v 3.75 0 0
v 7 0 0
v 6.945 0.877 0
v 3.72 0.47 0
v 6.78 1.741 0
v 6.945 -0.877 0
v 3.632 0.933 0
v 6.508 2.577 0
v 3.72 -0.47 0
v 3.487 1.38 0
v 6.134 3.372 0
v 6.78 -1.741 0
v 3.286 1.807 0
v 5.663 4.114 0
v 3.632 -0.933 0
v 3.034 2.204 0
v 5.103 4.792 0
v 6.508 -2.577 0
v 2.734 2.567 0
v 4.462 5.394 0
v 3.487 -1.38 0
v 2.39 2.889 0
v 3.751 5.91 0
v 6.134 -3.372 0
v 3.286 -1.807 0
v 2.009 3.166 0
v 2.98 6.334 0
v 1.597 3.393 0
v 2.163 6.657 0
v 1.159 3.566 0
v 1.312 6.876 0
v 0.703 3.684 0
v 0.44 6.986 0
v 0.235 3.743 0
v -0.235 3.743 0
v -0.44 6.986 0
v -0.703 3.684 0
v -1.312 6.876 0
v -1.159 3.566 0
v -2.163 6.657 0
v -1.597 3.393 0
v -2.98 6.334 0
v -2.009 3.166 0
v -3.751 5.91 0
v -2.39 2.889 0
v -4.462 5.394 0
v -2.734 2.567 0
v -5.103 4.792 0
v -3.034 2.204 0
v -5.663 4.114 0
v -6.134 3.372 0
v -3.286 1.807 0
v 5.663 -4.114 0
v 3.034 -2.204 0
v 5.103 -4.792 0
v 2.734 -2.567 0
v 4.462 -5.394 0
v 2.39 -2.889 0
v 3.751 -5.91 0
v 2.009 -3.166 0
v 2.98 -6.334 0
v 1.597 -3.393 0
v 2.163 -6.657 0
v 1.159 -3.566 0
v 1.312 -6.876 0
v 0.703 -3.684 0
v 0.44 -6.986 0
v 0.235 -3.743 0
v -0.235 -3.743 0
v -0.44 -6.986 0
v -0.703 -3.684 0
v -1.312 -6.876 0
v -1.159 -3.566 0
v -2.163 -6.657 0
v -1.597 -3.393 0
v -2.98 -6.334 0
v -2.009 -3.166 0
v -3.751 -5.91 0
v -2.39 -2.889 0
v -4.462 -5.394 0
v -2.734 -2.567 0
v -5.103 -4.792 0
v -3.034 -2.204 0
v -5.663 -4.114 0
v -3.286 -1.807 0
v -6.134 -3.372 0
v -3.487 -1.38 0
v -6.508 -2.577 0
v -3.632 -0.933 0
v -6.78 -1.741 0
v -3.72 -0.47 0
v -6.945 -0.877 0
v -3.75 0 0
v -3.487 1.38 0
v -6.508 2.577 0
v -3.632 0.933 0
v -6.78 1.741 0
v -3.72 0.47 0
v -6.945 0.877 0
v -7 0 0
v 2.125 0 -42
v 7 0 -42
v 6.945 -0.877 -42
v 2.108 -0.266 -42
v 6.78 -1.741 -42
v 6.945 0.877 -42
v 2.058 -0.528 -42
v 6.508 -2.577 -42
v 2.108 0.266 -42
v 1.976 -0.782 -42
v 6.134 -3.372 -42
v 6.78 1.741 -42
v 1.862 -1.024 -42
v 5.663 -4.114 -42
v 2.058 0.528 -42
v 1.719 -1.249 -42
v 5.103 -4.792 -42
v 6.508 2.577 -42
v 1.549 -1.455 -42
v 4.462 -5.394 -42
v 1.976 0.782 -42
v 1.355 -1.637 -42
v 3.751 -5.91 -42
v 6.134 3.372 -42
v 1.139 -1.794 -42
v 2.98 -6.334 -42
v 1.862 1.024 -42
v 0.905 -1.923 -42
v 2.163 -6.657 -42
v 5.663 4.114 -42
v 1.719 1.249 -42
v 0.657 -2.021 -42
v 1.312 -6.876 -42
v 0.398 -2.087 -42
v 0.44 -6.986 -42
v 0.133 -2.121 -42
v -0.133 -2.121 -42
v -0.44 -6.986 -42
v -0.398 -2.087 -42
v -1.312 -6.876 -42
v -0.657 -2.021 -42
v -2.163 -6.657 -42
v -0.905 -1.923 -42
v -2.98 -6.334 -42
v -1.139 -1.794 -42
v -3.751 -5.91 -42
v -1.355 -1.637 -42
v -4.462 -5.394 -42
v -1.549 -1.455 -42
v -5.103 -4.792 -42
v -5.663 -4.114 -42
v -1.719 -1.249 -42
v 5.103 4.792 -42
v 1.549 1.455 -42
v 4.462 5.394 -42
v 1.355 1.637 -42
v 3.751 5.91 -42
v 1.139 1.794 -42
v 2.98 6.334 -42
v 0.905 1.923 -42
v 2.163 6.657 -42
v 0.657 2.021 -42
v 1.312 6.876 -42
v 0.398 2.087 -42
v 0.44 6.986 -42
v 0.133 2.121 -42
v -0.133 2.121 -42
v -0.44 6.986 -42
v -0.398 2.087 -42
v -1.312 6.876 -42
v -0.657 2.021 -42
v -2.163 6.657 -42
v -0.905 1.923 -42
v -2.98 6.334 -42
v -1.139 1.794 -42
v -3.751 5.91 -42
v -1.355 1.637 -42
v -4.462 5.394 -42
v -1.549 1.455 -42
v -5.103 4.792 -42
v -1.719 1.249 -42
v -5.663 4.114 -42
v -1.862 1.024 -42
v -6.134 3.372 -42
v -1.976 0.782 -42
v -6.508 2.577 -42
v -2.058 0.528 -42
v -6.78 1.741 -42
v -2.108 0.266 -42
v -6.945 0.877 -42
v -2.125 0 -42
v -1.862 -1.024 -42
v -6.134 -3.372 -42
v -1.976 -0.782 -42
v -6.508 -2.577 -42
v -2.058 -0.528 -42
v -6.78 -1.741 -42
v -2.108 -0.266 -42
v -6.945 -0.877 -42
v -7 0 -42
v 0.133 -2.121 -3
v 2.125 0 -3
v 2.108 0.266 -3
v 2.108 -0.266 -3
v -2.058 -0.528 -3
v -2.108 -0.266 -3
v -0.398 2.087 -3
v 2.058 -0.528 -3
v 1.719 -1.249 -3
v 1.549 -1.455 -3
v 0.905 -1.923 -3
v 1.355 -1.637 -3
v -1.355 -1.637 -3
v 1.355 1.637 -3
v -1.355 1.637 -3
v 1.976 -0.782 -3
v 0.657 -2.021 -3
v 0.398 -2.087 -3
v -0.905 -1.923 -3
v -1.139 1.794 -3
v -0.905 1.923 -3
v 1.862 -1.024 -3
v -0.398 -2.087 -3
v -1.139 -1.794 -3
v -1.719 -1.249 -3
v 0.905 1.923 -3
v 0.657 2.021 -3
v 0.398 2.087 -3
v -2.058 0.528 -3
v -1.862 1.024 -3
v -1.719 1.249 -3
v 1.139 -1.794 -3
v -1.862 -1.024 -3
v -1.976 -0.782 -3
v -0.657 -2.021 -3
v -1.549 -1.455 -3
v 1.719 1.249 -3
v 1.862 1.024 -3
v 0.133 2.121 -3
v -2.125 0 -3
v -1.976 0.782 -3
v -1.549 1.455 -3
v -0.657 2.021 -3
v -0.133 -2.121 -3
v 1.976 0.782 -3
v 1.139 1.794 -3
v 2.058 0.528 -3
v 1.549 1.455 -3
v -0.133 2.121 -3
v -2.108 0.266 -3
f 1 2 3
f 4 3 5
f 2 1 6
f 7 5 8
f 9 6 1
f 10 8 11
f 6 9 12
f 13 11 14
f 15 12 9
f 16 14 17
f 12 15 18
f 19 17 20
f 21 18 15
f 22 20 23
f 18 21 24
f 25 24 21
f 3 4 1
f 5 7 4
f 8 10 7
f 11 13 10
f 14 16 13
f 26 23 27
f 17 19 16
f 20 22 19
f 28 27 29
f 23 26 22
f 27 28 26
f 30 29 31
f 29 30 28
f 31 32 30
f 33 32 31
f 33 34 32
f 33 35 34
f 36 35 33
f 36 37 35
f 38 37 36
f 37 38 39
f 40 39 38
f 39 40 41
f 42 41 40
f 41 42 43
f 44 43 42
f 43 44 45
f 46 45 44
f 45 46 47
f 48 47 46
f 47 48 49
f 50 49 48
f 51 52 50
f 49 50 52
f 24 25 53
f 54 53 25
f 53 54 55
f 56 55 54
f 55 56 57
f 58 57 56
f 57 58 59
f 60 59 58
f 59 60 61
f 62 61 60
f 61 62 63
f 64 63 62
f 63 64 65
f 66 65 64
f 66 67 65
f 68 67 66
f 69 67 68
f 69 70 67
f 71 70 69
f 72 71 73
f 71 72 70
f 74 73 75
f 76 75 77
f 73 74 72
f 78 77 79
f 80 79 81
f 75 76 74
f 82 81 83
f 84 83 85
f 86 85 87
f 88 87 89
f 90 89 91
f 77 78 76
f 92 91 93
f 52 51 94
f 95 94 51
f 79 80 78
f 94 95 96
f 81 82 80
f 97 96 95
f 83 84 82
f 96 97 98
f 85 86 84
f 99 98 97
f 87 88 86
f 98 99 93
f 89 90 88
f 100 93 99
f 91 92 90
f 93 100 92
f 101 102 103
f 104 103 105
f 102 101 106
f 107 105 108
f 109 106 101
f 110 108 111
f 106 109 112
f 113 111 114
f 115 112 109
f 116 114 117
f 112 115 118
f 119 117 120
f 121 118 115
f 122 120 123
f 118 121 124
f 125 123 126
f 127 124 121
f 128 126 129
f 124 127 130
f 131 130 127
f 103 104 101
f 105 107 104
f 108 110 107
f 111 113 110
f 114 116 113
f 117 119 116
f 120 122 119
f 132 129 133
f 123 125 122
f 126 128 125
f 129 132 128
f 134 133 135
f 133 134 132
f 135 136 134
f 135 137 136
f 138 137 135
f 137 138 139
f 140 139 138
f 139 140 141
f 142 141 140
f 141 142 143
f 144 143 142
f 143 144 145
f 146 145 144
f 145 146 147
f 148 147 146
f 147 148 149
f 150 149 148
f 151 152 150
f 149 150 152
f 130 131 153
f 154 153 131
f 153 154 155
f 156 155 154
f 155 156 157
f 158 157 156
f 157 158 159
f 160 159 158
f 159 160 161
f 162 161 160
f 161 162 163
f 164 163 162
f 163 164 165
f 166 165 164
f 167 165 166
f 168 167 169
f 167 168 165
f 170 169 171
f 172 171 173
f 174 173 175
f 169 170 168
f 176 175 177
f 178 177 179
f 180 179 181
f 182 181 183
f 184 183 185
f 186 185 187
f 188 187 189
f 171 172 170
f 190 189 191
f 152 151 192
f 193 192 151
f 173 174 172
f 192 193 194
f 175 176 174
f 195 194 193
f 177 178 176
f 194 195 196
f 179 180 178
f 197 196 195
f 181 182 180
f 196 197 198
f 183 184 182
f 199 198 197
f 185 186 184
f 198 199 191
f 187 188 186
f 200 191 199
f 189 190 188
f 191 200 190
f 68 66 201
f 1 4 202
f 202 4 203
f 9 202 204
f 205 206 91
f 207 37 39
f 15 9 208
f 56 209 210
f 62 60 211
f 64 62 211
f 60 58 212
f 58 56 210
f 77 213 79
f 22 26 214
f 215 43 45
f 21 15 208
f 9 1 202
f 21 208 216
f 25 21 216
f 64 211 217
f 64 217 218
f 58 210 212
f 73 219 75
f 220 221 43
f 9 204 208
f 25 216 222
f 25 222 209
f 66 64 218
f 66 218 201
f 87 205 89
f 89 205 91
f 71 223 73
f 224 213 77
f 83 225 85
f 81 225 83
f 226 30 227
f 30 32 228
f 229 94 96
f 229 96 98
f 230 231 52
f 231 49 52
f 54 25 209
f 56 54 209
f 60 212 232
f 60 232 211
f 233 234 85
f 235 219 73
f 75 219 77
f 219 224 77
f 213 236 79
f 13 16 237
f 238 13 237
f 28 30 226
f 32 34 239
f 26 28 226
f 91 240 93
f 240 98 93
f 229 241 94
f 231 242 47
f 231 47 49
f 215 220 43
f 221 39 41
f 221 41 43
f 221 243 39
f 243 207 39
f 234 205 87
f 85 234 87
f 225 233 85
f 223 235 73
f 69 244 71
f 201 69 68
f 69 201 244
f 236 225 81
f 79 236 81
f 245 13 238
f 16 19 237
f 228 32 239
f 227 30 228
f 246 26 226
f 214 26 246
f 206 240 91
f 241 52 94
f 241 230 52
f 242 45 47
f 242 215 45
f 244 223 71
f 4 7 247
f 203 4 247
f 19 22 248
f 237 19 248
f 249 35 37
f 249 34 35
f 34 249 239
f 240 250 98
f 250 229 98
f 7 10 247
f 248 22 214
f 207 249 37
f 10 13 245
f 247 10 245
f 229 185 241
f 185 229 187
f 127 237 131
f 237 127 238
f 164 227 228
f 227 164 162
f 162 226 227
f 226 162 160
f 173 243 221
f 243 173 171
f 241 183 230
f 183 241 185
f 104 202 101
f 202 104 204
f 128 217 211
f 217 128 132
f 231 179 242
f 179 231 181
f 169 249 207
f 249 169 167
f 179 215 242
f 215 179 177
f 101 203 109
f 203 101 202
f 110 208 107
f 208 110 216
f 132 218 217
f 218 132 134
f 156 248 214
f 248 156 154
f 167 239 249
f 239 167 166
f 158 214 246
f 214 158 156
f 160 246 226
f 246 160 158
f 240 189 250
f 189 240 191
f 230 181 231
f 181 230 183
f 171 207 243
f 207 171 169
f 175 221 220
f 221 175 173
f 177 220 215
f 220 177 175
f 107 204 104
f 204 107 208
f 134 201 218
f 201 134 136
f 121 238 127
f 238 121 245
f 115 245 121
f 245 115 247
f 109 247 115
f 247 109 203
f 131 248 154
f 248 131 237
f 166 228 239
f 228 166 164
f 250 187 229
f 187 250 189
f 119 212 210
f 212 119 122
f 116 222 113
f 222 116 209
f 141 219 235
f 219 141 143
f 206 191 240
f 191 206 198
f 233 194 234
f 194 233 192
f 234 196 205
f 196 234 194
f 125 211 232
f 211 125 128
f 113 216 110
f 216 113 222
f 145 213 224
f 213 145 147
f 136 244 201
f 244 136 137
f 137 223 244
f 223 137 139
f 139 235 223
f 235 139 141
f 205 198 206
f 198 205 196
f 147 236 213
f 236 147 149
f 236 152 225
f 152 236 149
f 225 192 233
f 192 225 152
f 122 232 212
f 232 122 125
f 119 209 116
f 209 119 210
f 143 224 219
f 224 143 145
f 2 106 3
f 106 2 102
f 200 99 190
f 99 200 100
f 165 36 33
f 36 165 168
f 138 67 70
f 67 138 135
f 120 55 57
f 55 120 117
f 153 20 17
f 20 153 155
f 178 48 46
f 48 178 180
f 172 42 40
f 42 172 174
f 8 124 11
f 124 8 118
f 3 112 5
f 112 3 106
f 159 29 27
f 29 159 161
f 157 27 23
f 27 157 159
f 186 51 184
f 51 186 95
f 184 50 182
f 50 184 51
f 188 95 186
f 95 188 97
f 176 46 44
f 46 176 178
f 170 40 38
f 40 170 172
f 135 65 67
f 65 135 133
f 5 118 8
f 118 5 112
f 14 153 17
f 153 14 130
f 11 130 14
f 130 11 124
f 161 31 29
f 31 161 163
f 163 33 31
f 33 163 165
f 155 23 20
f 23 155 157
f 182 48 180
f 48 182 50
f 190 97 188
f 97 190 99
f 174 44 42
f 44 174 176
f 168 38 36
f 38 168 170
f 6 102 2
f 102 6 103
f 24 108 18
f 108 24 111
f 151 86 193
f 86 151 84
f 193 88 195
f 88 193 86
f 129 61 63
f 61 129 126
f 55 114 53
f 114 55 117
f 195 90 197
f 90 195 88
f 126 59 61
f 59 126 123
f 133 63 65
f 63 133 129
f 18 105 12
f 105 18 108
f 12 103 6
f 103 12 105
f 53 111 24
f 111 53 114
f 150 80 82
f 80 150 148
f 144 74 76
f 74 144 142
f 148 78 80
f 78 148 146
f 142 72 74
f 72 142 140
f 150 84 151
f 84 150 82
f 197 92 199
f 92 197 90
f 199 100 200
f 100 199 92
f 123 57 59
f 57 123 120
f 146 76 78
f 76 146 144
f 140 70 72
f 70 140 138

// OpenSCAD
$fn = 50;


difference() {
	union() {
		translate(v = [0, 0, -42.0000000000]) {
			cylinder(h = 42, r = 7.0000000000);
		}
		cylinder(h = 0, r = 13.0000000000);
	}
	union() {
		translate(v = [0, 0, 0]) {
			rotate(a = [0, 0, 0]) {
				difference() {
					union() {
						#translate(v = [0, 0, -42.0000000000]) {
							cylinder(h = 42, r = 2.0000000000);
						}
						#translate(v = [0, 0, -3]) {
							cylinder(h = 3, r1 = 2.1250000000, r2 = 3.7500000000);
						}
						#translate(v = [0, 0, -42.0000000000]) {
							cylinder(h = 42, r = 2.1250000000);
						}
						#translate(v = [0, 0, -42.0000000000]) {
							cylinder(h = 42, r = 2.0000000000);
						}
					}
					union();
				}
			}
		}
	}
}
